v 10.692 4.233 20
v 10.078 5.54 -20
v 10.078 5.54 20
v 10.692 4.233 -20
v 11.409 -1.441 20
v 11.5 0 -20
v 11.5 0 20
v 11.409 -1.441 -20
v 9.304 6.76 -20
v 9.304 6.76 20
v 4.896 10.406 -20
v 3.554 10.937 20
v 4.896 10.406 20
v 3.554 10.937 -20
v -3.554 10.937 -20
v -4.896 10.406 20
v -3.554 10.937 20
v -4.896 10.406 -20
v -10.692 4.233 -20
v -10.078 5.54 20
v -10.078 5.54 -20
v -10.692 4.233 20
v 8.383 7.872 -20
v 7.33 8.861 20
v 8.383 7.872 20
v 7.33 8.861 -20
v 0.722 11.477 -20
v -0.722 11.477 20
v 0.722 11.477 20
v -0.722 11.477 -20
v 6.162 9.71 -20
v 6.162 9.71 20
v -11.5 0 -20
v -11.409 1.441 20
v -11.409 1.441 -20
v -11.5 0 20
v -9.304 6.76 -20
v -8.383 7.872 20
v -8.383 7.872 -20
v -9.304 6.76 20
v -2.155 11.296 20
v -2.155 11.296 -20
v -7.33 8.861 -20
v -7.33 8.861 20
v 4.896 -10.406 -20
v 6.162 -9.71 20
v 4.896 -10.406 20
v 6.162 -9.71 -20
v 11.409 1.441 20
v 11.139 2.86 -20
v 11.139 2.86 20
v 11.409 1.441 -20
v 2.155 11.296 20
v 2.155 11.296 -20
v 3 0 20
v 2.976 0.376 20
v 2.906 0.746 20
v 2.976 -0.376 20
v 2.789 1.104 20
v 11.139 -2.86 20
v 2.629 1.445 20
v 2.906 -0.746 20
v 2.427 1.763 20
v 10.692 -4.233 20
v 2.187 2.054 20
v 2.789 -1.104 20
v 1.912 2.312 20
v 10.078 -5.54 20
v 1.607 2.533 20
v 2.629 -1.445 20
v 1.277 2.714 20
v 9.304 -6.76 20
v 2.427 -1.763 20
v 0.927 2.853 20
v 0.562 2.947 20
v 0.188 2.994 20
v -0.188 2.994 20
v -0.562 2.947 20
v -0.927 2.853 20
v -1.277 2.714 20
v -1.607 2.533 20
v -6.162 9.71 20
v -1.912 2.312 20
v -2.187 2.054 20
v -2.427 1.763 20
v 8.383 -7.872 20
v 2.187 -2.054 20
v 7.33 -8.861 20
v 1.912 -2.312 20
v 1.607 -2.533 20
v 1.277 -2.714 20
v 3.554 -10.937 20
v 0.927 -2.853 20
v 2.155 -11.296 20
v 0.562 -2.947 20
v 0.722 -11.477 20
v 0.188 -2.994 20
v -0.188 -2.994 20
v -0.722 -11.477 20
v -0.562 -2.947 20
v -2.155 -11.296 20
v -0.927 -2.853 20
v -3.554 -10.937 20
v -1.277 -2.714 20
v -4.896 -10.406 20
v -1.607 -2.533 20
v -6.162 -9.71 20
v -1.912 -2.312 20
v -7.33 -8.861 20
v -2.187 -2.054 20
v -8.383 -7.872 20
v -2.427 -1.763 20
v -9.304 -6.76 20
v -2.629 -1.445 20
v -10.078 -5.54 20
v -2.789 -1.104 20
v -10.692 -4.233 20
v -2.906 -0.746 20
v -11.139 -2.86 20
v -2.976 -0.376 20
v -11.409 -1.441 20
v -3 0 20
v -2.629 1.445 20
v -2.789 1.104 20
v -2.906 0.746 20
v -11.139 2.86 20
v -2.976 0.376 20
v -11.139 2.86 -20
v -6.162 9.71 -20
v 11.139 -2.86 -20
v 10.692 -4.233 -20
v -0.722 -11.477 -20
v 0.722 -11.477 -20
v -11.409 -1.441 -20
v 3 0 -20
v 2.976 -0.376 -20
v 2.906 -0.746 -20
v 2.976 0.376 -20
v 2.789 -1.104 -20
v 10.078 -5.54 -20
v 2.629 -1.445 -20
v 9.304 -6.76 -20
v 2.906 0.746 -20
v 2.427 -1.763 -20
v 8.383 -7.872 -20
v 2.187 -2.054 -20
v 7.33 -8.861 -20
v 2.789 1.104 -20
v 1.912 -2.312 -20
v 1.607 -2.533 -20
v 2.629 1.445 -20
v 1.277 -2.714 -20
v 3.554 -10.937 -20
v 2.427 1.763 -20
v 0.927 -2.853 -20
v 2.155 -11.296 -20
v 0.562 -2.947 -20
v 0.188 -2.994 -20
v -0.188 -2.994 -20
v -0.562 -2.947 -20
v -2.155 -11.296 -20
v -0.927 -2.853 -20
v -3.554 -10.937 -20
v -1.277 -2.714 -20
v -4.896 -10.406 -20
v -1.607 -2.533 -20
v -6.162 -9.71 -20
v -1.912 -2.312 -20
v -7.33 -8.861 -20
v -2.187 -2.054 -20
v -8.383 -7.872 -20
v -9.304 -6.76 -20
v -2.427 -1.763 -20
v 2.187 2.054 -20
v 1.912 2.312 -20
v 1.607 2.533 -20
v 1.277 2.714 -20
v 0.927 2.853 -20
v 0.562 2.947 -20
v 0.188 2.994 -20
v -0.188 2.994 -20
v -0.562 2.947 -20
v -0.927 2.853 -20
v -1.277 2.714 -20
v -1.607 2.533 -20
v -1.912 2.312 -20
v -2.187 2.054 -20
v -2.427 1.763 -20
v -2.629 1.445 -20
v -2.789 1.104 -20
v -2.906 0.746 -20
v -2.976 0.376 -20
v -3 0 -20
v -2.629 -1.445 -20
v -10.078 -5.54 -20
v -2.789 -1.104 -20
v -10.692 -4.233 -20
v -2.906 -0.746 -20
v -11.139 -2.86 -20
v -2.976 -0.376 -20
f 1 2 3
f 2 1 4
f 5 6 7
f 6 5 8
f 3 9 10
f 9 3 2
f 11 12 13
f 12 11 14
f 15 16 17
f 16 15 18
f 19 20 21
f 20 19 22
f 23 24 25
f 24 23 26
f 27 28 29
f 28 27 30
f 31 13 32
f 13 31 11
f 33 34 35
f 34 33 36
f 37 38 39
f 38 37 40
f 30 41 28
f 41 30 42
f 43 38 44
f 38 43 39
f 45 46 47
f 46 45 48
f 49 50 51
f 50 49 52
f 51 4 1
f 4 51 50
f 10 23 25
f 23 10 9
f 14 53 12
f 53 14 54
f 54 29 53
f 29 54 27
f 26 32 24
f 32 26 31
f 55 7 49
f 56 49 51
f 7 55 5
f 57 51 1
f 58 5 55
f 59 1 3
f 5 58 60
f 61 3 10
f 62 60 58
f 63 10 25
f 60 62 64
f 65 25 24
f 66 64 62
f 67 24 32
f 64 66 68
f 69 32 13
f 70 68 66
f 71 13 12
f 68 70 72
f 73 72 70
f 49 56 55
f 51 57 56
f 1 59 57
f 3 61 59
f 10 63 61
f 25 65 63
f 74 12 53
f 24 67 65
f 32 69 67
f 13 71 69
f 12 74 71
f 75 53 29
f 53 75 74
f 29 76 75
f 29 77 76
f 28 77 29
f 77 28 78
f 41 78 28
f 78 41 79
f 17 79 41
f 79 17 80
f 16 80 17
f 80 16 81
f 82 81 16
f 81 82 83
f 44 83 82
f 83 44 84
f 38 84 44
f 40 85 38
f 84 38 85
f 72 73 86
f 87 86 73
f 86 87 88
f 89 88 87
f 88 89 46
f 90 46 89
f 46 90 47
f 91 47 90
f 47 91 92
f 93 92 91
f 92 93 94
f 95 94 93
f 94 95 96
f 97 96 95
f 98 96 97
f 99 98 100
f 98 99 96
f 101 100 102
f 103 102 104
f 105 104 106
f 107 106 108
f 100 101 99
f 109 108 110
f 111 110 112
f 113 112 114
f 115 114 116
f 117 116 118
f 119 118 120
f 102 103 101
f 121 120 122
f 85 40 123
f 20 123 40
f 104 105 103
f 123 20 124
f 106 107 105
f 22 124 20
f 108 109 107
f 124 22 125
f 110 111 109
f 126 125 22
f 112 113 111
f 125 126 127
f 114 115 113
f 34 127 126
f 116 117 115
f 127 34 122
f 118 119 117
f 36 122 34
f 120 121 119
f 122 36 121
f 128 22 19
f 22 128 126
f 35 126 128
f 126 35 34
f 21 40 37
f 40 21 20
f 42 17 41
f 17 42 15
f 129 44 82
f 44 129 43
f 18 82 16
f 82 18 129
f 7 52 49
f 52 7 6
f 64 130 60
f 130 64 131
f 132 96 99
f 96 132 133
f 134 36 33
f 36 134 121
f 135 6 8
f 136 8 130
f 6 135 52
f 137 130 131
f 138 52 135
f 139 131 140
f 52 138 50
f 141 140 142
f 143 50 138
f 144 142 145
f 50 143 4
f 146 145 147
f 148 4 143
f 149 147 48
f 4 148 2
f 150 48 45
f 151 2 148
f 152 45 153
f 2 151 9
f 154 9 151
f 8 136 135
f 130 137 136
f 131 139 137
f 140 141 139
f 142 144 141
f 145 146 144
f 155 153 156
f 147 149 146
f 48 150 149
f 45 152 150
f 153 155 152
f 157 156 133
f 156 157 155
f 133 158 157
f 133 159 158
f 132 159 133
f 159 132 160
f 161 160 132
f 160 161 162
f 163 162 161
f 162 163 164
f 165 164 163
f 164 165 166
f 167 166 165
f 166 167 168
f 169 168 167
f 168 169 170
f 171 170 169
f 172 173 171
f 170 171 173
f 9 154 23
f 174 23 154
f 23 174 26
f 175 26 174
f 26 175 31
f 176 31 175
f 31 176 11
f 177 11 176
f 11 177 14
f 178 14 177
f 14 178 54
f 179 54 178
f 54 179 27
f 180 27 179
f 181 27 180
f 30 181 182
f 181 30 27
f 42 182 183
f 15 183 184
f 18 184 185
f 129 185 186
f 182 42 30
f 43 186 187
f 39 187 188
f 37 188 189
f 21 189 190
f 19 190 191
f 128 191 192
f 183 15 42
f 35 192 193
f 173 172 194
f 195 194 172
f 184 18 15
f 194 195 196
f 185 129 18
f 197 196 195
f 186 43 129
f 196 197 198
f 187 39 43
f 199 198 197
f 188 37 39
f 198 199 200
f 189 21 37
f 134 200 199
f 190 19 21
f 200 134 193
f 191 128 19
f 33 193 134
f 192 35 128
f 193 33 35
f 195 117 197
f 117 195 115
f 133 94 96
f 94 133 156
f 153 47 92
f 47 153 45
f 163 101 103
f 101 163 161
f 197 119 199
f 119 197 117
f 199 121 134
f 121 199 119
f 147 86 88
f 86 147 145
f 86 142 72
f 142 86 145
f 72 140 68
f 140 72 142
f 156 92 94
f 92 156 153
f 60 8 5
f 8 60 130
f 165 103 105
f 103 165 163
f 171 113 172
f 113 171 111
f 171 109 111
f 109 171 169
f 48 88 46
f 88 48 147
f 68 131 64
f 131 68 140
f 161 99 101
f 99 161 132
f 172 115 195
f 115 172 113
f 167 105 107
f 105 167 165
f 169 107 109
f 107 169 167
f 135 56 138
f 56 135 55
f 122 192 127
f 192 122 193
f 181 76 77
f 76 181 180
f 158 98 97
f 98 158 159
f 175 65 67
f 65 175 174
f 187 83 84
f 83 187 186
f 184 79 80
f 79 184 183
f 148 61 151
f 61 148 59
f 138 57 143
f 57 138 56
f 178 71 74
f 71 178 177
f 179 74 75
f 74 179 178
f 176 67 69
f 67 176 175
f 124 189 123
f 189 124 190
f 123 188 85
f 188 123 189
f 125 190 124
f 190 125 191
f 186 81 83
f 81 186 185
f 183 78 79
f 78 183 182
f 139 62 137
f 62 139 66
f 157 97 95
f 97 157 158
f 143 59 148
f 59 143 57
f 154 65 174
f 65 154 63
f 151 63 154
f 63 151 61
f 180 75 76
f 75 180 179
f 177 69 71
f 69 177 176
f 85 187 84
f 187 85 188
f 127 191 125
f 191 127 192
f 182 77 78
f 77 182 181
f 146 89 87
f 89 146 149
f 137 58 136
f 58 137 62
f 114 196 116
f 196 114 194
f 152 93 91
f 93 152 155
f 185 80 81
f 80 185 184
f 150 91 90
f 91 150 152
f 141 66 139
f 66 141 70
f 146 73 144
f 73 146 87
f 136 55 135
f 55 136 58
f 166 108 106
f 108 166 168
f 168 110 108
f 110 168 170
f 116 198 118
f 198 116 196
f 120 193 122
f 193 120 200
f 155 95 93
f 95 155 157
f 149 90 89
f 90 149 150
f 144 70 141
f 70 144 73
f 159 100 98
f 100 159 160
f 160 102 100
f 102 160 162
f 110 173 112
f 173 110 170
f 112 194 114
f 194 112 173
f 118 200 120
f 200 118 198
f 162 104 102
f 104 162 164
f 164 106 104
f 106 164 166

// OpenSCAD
$fn = 50;


difference() {
	union() {
		translate(v = [0, 0, -20.0000000000]) {
			cylinder(h = 40, r = 11.5000000000);
		}
	}
	union() {
		translate(v = [0, 0, -100.0000000000]) {
			cylinder(h = 200, r = 3);
		}
	}
}
